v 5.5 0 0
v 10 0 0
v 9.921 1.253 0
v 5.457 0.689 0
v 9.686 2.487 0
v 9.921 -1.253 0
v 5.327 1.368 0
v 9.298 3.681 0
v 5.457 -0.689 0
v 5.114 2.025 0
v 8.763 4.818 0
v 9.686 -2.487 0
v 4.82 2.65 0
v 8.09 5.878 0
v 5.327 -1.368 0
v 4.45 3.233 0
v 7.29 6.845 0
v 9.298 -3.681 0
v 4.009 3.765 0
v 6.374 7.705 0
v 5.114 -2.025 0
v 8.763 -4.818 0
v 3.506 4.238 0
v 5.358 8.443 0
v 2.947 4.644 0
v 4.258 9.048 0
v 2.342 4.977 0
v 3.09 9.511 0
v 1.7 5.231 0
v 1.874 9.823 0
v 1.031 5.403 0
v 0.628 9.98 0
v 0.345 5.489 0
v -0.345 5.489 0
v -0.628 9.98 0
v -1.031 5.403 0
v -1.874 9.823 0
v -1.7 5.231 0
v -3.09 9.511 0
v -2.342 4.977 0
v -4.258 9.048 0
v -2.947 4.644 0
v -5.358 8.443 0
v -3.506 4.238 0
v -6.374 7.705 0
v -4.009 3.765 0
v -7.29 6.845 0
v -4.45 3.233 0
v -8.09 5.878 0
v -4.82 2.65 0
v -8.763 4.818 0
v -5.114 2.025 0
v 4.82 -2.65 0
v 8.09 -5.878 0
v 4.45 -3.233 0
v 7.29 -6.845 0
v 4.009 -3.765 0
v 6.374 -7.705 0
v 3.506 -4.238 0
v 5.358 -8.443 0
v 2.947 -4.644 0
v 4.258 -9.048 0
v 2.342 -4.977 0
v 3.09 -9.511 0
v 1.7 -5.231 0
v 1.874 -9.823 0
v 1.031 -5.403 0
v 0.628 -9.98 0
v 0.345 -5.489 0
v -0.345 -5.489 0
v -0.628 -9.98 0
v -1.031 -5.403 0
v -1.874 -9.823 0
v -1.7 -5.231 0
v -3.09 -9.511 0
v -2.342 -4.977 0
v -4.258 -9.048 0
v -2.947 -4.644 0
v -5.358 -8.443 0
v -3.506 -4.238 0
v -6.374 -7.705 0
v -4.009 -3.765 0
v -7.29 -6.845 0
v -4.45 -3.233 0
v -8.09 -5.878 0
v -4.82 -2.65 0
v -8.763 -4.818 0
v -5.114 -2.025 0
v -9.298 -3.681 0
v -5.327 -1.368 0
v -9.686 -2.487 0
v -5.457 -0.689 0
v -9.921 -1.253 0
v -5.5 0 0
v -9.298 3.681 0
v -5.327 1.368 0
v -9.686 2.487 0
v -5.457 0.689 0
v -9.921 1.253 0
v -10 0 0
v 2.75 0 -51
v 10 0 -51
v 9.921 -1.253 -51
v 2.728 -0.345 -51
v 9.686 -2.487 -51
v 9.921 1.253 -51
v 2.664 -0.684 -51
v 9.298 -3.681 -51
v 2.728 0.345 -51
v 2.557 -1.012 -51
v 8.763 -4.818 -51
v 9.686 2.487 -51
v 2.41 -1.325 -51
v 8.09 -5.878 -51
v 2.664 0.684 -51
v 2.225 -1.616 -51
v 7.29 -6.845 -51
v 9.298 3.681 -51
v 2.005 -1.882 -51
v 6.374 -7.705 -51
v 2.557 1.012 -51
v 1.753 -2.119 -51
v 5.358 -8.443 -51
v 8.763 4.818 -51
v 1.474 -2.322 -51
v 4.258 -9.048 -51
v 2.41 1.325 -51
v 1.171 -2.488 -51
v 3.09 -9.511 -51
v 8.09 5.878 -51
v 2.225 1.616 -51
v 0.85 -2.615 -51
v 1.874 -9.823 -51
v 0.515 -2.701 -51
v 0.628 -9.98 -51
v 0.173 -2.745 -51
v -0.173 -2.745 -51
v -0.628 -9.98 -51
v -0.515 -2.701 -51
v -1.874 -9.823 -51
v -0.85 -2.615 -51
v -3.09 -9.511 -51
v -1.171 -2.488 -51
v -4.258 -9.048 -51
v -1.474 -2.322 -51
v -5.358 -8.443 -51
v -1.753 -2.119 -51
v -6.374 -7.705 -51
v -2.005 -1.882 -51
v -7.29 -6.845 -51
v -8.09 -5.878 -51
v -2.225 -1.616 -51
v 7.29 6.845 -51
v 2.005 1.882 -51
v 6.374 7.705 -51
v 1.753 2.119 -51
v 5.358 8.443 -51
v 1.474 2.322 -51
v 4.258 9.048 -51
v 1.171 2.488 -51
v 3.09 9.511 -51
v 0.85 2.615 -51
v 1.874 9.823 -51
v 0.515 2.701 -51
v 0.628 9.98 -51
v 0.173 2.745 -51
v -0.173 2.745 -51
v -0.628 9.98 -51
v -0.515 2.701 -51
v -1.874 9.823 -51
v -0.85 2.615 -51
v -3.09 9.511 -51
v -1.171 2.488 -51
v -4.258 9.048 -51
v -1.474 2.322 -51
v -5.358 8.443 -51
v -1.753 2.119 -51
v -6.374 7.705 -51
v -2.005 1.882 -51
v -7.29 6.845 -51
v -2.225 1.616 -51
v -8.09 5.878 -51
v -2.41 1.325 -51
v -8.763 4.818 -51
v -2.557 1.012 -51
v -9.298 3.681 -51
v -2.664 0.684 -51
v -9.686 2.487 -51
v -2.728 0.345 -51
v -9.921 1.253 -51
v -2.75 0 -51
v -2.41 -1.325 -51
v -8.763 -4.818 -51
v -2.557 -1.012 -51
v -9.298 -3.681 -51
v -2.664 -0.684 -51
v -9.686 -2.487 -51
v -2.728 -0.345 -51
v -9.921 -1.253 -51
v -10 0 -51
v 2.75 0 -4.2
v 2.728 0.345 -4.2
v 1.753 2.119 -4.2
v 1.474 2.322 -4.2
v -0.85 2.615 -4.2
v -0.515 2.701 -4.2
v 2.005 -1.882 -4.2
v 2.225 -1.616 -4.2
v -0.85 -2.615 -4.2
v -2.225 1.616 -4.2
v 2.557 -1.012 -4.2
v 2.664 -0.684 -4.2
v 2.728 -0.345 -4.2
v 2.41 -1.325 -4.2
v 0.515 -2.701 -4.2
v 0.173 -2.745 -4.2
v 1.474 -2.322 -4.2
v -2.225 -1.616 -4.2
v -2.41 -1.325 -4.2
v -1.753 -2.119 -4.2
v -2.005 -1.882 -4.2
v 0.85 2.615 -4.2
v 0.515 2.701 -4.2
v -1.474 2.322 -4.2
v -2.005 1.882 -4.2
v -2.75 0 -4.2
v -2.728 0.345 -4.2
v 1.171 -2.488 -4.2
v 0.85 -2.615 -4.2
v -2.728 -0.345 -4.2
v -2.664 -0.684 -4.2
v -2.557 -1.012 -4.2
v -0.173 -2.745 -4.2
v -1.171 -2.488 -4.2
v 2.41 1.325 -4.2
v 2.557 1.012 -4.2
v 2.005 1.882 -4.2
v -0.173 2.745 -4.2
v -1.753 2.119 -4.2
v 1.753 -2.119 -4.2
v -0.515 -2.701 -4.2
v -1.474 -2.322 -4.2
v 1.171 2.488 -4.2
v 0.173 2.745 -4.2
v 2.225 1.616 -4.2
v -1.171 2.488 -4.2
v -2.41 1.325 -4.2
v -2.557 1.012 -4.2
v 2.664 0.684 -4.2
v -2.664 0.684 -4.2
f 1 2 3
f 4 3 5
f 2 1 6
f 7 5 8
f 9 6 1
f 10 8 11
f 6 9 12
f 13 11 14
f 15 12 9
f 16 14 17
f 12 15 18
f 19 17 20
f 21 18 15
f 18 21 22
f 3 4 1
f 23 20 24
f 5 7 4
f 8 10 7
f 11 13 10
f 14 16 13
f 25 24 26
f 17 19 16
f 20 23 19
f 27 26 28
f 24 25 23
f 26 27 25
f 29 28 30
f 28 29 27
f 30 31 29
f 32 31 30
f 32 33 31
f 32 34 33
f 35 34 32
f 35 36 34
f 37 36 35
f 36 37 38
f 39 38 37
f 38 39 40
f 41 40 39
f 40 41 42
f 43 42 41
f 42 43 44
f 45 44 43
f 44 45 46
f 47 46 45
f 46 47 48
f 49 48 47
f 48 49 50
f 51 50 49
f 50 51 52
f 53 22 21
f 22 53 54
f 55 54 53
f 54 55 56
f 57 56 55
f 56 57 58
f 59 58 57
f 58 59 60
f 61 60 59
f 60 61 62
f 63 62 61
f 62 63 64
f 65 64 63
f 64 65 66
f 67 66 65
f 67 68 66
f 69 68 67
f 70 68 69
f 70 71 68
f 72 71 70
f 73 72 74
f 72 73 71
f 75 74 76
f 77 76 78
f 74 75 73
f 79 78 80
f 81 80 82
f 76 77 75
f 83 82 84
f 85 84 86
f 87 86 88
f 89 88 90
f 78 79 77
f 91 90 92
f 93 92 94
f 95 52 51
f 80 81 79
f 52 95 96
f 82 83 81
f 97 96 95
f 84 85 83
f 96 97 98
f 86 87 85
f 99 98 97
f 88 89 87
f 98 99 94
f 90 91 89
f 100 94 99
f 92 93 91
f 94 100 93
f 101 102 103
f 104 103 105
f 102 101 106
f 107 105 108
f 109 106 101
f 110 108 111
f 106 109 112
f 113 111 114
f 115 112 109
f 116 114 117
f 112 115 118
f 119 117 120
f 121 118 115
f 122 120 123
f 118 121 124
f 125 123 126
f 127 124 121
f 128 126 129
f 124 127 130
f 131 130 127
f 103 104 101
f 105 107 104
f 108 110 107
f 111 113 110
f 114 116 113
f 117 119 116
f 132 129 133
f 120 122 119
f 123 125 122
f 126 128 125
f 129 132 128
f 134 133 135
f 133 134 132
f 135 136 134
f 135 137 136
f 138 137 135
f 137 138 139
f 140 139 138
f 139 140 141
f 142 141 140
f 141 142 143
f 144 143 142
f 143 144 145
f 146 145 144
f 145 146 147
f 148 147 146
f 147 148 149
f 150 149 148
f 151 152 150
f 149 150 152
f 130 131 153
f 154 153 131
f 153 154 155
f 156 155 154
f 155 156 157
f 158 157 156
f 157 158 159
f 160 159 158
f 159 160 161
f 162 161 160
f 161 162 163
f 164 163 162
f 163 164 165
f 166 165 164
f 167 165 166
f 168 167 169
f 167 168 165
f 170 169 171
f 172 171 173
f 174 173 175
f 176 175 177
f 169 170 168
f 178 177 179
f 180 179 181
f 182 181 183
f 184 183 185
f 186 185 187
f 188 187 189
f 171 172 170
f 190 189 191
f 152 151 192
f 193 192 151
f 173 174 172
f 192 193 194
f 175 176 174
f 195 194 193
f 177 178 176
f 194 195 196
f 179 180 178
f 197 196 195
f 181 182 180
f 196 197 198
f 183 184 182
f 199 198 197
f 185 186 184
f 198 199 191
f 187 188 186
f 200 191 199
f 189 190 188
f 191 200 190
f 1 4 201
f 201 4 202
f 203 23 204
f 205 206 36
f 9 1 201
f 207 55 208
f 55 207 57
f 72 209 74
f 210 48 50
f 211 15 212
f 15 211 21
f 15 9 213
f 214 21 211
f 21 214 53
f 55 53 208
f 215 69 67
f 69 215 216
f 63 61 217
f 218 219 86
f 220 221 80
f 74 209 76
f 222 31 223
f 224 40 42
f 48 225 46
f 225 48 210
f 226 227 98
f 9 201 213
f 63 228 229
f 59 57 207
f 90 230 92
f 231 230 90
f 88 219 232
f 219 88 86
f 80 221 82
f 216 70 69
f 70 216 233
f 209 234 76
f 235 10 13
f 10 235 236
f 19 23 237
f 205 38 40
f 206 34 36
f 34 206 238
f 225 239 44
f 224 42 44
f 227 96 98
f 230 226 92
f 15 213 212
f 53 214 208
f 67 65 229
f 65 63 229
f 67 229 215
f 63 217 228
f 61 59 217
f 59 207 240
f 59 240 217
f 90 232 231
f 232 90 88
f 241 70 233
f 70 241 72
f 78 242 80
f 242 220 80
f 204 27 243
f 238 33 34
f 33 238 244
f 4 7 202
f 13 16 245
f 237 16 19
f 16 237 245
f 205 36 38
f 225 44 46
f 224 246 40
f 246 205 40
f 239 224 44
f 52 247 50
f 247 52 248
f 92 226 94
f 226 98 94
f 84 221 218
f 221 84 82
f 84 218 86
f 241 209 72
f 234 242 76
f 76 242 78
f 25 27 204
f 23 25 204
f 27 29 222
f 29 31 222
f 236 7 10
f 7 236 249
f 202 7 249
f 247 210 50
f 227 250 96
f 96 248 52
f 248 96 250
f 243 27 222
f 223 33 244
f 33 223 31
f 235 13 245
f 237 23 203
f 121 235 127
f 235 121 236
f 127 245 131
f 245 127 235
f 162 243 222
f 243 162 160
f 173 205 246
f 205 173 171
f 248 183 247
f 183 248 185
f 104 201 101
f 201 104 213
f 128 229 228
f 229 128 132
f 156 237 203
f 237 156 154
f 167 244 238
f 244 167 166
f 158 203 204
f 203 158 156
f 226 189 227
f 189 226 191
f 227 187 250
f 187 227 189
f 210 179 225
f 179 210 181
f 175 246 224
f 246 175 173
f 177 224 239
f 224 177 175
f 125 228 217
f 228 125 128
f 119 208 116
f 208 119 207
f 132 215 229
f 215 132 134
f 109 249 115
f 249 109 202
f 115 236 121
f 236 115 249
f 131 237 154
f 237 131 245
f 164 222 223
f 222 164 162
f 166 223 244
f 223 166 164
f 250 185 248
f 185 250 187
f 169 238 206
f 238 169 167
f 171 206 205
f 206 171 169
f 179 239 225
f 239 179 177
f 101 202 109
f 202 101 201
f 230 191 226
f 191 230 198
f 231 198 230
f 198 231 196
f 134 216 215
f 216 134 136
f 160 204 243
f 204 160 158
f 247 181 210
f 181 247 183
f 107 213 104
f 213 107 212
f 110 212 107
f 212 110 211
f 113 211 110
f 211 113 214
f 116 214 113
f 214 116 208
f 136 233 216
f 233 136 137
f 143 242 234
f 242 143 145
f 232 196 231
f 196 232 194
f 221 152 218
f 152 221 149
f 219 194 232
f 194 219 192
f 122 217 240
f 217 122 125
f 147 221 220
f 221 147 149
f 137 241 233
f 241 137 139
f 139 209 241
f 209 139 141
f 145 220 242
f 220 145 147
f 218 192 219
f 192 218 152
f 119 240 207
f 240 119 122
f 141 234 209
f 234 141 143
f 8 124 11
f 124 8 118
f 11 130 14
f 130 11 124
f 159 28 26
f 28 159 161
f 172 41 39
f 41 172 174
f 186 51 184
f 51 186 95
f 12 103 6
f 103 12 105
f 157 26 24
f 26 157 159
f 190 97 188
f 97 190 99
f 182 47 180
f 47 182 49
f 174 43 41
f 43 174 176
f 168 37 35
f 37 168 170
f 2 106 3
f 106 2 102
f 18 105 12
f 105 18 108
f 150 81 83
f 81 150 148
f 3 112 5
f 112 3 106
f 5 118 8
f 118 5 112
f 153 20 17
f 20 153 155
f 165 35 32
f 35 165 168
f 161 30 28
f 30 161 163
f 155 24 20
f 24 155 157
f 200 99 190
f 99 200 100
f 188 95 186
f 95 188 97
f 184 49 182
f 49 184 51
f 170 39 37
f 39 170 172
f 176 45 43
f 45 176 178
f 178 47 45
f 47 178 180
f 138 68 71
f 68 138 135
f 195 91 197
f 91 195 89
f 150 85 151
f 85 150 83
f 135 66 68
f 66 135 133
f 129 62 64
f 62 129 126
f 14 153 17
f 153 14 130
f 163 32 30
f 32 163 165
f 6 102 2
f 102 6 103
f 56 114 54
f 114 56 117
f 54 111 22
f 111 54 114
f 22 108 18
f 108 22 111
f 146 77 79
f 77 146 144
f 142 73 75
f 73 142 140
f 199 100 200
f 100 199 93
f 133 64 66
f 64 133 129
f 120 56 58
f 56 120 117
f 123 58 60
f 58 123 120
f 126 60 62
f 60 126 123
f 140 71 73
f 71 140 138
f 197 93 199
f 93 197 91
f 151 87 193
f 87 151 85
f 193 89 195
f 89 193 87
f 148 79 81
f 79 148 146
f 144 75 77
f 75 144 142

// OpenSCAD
$fn = 50;


difference() {
	union() {
		translate(v = [0, 0, -51.0000000000]) {
			cylinder(h = 51, r = 10.0000000000);
		}
		cylinder(h = 0, r = 19.0000000000);
	}
	union() {
		translate(v = [0, 0, 0]) {
			rotate(a = [0, 0, 0]) {
				difference() {
					union() {
						#translate(v = [0, 0, -51.0000000000]) {
							cylinder(h = 51, r = 2.2500000000);
						}
						#translate(v = [0, 0, -4.2000000000]) {
							cylinder(h = 4.2000000000, r = 10.0000000000, r1 = 2.7500000000, r2 = 5.5000000000);
						}
						#translate(v = [0, 0, -51.0000000000]) {
							cylinder(h = 51, r = 2.7500000000);
						}
						#translate(v = [0, 0, -51.0000000000]) {
							cylinder(h = 51, r = 2.2500000000);
						}
					}
					union();
				}
			}
		}
	}
}
